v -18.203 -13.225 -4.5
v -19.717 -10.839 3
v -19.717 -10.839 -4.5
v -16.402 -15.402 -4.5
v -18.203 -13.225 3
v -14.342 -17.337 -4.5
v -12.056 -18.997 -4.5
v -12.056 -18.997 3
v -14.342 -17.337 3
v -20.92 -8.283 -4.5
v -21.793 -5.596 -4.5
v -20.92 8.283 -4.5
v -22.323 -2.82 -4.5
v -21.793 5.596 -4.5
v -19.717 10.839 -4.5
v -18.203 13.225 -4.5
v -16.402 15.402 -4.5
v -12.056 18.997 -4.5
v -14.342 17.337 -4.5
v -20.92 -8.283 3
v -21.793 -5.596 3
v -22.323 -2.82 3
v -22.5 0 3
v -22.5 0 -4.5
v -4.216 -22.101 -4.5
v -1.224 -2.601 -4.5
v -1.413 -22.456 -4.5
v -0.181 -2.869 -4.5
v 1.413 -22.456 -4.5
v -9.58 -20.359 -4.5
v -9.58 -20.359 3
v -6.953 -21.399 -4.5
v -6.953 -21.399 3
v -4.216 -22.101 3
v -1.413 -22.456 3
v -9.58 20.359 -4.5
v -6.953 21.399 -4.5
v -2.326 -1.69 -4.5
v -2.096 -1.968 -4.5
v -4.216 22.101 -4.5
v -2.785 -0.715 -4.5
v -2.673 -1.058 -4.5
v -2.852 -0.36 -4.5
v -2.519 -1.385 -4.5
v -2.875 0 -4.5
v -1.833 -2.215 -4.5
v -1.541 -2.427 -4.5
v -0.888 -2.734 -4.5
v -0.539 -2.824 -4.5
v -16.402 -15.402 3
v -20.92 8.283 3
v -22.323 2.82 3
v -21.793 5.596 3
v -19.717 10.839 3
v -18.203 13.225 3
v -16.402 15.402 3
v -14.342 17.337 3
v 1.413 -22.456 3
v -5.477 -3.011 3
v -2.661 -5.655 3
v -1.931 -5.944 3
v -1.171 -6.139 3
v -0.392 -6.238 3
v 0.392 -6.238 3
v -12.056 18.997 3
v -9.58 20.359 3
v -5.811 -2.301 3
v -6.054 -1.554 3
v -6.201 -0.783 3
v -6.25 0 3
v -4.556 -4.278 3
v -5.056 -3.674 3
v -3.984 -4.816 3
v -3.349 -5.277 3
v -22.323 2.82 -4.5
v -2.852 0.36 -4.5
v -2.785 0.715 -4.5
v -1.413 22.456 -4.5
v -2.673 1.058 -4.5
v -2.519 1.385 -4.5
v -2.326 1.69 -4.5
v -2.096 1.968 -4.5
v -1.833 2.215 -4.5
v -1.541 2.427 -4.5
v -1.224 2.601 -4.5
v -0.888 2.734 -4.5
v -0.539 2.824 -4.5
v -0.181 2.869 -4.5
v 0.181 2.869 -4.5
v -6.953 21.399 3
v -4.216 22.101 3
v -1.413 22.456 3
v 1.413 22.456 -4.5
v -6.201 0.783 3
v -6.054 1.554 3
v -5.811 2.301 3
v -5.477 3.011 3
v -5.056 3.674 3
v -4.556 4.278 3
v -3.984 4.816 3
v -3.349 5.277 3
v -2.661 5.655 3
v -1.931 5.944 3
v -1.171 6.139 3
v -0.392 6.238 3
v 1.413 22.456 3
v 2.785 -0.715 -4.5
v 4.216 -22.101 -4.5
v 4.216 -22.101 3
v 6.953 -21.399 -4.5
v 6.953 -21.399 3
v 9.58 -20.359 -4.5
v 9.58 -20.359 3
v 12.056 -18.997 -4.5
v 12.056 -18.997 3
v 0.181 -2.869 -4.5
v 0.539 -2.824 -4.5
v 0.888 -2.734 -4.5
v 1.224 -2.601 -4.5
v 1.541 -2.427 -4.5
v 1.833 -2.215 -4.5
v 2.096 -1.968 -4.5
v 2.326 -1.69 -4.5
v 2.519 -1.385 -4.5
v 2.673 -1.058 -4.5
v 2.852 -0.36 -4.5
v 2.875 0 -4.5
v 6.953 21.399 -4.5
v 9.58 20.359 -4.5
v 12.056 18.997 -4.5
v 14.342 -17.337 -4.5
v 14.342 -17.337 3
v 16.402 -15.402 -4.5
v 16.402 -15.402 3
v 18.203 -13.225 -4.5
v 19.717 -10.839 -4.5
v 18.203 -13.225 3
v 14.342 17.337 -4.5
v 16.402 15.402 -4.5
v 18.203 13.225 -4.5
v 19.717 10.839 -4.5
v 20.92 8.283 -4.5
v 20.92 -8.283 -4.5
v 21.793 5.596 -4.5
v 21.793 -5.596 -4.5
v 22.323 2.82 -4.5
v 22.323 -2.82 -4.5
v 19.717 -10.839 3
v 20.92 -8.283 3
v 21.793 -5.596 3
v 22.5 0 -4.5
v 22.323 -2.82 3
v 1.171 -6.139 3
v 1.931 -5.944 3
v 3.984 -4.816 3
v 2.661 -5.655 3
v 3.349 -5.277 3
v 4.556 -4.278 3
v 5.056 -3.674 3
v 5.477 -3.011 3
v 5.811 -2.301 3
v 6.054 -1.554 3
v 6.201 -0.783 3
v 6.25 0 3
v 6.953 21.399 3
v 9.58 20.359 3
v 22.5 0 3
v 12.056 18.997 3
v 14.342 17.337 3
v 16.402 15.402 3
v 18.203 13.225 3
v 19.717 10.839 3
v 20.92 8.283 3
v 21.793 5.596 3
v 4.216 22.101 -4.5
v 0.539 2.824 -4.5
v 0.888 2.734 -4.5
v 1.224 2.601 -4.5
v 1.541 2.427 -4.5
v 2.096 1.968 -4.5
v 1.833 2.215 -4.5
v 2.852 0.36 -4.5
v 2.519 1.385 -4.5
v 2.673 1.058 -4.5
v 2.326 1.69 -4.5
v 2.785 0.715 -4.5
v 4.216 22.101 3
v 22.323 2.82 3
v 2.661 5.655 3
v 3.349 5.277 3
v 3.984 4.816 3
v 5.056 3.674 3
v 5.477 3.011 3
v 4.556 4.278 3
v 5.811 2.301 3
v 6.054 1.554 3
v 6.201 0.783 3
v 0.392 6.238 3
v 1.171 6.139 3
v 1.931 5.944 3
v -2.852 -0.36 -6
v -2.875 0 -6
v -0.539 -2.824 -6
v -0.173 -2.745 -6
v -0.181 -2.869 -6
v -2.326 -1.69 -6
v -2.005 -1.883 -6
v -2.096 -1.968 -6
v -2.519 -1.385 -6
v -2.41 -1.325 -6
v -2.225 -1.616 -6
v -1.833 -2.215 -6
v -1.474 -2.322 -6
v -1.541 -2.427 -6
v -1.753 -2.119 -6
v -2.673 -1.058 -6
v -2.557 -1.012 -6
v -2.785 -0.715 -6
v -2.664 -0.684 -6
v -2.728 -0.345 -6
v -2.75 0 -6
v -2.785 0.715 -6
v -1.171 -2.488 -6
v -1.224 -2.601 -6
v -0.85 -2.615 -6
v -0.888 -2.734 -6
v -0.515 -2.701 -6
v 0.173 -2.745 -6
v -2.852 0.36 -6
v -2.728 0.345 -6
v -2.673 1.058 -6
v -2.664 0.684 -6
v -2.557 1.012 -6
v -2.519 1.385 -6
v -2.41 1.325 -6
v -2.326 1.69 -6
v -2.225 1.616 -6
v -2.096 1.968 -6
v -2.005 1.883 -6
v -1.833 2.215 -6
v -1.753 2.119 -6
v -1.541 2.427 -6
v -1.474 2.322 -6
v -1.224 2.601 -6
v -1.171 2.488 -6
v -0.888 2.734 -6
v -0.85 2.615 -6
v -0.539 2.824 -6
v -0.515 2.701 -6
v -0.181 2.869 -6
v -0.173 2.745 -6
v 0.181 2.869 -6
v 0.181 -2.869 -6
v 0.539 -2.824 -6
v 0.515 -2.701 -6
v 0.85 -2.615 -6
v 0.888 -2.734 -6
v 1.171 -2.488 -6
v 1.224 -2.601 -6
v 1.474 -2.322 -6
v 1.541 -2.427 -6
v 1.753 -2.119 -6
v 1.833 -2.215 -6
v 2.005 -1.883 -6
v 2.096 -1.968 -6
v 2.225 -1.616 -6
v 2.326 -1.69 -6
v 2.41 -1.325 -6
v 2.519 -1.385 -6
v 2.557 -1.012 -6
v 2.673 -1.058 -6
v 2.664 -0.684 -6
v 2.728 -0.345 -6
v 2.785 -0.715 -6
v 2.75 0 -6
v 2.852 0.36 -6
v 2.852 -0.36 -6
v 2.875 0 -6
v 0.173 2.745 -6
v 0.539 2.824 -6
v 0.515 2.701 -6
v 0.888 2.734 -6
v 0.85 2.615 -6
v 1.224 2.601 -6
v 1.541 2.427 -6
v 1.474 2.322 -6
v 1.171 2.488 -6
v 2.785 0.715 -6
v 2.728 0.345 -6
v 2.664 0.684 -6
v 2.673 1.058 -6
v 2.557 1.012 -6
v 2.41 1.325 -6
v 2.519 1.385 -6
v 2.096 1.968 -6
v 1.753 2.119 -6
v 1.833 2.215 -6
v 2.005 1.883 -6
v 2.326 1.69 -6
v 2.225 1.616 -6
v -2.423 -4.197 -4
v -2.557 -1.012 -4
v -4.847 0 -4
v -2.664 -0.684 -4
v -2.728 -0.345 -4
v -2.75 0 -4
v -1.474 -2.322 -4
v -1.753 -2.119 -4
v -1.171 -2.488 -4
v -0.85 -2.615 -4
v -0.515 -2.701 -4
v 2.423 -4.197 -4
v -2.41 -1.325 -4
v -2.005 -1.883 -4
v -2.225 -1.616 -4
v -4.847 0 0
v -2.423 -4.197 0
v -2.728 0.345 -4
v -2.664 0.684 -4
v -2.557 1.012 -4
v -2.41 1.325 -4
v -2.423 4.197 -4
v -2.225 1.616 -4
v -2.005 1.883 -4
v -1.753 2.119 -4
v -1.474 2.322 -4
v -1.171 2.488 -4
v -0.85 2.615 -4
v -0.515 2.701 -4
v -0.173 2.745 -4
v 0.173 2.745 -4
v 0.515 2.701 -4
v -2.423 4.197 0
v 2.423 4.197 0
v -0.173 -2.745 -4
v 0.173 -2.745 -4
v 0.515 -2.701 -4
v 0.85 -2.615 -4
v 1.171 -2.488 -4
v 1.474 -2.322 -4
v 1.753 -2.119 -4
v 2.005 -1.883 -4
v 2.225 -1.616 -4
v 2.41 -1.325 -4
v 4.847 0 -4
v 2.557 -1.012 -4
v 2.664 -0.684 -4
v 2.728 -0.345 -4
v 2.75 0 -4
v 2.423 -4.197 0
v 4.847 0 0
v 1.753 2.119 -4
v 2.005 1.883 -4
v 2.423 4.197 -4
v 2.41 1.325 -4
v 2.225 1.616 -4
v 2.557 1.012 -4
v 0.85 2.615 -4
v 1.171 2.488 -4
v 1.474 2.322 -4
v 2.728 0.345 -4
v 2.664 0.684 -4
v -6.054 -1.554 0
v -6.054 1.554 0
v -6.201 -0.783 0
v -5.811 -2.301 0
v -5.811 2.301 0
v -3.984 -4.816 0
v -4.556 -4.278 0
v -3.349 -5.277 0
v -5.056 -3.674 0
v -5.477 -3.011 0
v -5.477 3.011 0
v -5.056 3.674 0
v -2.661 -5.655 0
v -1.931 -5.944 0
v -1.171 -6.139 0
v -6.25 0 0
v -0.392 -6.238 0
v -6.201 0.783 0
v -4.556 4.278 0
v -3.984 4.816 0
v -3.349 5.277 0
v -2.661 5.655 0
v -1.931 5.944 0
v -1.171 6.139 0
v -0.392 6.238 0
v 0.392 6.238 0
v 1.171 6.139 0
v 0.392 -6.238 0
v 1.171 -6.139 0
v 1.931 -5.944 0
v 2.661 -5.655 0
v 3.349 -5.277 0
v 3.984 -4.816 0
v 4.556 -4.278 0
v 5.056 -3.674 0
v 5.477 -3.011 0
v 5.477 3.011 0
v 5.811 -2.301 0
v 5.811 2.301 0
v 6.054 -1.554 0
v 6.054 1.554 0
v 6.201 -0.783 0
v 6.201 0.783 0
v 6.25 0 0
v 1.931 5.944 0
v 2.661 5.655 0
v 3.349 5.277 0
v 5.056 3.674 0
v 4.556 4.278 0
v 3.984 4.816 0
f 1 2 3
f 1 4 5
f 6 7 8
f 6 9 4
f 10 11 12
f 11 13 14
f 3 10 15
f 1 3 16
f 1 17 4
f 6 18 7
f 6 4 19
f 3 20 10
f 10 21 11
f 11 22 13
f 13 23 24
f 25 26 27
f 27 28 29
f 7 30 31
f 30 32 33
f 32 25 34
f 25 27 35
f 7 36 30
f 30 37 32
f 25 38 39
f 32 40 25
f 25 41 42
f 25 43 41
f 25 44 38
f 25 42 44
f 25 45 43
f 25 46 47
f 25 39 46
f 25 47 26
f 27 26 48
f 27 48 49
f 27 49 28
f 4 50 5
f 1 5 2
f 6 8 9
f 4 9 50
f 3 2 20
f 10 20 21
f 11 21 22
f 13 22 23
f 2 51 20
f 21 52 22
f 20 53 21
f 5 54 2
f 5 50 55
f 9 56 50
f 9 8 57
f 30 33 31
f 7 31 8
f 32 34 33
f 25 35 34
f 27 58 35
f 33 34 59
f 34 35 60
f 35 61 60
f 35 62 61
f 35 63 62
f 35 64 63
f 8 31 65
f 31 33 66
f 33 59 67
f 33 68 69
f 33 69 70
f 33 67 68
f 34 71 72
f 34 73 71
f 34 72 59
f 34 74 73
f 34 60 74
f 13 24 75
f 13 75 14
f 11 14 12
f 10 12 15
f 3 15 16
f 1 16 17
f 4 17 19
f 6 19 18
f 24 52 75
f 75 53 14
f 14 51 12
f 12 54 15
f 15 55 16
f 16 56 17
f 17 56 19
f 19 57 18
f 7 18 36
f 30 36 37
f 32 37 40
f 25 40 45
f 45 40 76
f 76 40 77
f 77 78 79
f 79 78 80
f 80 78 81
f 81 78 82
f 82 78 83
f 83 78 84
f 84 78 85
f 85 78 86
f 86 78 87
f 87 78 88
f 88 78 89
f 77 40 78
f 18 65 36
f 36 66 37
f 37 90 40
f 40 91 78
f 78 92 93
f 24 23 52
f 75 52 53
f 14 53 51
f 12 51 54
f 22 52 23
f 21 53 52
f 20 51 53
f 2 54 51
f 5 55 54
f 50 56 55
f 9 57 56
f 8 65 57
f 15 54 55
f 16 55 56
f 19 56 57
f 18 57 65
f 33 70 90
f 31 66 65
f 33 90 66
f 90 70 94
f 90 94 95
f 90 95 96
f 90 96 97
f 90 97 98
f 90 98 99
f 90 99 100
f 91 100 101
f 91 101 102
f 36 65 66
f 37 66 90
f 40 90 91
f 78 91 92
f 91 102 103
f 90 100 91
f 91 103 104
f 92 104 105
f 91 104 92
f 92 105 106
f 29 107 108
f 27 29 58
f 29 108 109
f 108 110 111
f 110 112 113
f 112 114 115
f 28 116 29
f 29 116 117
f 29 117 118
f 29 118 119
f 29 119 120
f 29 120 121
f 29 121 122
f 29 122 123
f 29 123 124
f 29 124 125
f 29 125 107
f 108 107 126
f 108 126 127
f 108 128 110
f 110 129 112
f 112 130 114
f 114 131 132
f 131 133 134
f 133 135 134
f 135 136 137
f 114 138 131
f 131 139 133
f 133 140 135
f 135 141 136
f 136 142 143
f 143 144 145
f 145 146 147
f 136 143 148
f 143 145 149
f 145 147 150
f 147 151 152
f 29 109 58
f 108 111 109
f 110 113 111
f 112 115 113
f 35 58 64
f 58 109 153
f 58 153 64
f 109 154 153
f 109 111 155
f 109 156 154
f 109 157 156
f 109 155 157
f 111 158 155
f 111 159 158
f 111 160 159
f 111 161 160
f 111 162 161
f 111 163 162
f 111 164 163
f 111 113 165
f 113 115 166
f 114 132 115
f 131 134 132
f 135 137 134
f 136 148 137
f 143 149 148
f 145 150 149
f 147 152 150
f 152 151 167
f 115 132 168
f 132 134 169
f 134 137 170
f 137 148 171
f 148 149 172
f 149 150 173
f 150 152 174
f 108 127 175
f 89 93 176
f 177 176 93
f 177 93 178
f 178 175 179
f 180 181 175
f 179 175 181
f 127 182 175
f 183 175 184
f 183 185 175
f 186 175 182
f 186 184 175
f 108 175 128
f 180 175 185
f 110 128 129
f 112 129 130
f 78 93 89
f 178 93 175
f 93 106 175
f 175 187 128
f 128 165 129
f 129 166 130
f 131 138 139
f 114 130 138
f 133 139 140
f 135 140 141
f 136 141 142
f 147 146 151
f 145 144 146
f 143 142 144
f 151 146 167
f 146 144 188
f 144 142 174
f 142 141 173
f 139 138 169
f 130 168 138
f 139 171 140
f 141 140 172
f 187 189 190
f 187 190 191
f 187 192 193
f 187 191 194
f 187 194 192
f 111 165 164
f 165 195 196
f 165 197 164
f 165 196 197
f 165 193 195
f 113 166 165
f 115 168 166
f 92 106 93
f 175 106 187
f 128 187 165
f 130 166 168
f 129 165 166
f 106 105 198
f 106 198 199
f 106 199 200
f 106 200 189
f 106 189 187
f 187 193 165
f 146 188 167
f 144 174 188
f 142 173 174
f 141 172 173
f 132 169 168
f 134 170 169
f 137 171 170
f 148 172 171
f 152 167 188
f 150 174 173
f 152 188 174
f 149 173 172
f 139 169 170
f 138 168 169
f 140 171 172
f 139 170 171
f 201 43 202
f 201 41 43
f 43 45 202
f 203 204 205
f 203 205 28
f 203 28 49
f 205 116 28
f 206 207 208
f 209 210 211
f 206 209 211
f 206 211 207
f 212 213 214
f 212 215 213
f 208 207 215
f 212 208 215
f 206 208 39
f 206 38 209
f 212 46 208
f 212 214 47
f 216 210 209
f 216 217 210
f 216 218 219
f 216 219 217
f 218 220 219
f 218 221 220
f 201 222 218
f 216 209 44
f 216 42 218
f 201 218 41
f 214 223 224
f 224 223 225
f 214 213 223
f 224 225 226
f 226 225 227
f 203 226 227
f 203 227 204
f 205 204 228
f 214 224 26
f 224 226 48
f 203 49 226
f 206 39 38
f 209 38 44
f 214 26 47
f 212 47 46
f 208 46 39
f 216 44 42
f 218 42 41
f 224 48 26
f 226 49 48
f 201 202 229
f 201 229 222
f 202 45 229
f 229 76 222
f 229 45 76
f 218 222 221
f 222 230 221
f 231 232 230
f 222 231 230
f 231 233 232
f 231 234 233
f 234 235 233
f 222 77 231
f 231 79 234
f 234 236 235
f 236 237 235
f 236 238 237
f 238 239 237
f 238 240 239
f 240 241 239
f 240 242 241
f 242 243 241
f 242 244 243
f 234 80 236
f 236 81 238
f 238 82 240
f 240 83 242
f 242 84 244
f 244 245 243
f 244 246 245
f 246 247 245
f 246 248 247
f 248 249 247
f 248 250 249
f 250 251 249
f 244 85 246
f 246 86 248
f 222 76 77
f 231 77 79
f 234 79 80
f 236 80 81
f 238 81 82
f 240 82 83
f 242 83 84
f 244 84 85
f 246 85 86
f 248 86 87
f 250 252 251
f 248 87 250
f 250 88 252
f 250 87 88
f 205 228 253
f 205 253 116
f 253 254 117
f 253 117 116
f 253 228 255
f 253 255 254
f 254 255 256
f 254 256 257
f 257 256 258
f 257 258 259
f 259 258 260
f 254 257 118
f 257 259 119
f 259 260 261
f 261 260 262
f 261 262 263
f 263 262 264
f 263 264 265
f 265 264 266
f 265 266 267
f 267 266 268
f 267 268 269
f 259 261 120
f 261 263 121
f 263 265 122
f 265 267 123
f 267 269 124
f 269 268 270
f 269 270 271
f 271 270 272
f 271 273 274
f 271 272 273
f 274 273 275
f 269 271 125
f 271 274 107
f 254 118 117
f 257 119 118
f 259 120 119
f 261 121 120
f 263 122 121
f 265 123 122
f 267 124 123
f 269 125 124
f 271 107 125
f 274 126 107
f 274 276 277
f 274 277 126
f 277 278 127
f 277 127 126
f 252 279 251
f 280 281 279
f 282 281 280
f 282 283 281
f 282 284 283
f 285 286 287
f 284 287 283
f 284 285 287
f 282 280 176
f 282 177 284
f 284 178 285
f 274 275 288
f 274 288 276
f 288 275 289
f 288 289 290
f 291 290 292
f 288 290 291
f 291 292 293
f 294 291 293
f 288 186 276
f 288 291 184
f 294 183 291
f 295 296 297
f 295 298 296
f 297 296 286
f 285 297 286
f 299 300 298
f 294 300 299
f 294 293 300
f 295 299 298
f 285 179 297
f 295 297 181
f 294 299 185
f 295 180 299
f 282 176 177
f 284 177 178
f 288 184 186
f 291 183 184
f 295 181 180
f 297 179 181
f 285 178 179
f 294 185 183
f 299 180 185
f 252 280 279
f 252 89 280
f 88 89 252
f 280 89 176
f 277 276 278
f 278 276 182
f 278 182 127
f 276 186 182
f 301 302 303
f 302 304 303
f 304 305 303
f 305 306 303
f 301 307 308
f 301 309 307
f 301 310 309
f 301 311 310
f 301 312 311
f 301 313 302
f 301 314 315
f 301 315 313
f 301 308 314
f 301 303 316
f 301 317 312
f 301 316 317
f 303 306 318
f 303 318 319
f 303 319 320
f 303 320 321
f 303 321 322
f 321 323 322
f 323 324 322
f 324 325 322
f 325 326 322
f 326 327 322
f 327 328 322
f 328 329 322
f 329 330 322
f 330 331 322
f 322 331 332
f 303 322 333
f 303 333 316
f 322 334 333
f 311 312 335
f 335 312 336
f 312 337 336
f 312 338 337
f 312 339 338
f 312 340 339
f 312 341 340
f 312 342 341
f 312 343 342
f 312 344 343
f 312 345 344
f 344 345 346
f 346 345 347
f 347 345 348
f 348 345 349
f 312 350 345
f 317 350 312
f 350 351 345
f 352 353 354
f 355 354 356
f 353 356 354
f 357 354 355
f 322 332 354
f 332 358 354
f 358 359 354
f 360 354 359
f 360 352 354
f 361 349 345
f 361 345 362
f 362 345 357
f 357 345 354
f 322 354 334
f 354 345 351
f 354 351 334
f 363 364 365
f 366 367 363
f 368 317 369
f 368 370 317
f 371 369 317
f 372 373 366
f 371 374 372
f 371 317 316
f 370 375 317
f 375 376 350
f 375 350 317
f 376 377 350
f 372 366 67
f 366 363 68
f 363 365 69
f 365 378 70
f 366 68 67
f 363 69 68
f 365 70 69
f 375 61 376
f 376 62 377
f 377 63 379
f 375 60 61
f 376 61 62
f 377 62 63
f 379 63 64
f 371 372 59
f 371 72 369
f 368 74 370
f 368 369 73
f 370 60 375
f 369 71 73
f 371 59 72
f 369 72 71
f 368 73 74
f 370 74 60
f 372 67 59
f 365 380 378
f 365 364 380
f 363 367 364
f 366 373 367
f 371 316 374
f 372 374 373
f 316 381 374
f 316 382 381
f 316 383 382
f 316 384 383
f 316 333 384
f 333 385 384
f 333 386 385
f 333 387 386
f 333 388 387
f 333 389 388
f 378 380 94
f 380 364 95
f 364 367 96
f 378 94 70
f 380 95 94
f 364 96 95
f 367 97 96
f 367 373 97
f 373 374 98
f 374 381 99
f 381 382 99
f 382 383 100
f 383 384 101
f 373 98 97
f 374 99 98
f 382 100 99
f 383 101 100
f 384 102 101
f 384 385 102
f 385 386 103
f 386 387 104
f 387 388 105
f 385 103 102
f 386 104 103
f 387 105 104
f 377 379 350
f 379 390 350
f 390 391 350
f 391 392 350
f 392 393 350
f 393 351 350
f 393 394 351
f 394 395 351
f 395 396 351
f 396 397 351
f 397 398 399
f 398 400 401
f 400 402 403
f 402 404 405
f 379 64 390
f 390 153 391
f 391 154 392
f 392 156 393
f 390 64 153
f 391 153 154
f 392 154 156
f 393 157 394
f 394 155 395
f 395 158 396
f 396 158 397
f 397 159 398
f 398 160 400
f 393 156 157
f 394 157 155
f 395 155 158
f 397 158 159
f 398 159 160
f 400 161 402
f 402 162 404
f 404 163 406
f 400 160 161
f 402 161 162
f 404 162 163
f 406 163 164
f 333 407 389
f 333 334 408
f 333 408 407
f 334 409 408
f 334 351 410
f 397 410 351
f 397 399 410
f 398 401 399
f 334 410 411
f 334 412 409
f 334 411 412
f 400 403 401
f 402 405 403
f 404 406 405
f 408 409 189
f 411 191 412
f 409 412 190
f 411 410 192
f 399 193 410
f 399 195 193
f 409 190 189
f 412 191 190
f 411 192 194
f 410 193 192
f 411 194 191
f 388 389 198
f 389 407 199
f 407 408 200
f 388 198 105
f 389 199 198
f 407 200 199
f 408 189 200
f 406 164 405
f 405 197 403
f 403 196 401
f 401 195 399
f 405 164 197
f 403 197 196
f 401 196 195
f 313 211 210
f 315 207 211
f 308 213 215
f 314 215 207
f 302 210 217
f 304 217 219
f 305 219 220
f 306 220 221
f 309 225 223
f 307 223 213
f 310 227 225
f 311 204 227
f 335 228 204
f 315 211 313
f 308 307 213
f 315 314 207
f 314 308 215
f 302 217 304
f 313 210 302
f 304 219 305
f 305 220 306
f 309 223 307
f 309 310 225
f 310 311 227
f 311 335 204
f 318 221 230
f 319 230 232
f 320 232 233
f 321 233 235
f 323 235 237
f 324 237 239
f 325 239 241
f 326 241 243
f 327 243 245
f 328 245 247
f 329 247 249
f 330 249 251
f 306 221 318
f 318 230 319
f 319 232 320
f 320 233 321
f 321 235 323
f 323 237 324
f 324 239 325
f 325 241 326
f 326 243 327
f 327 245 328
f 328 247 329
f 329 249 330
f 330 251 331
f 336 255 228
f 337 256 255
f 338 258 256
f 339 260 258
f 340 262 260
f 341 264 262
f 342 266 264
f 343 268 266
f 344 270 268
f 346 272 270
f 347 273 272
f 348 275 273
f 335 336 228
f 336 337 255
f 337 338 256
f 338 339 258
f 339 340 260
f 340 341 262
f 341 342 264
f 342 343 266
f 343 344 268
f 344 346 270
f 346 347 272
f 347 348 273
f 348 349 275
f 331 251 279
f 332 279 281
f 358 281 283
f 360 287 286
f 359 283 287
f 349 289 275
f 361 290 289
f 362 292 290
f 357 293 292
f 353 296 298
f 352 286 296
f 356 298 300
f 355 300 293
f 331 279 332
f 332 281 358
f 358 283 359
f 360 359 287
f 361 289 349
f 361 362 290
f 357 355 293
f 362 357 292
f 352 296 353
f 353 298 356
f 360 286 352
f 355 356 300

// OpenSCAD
$fn = 50;

difference() {
	union() {
		translate(v = [0, 0, -4.5]) {
			cylinder(h = 7.5, r = 22.5);
		}
		#translate(v = [0, 0, -6.0]) {
			cylinder(h = 6, r = 2.875);
		}
	}
	union() {
		translate(v = [0, 0, 0]) {
			rotate(a = [0, 0, 0]) {
				difference() {
					union() {
						translate(v = [0, 0, -4]) {
							linear_extrude(height = 4) {
								polygon(points = [[4.8468, 0.0], [2.4234000000000004, 4.197451927062417], [-2.423399999999999, 4.197451927062417], [-4.8468, 5.935618106107392e-16], [-2.423400000000002, -4.197451927062416], [2.423399999999997, -4.197451927062419]]);
							}
						}
					}
					union();
				}
			}
		}
		#cylinder(h = 3, r = 6.25);
		#translate(v = [0, 0, -100.0]) {
			cylinder(h = 200, r = 2.75);
		}
	}
}
